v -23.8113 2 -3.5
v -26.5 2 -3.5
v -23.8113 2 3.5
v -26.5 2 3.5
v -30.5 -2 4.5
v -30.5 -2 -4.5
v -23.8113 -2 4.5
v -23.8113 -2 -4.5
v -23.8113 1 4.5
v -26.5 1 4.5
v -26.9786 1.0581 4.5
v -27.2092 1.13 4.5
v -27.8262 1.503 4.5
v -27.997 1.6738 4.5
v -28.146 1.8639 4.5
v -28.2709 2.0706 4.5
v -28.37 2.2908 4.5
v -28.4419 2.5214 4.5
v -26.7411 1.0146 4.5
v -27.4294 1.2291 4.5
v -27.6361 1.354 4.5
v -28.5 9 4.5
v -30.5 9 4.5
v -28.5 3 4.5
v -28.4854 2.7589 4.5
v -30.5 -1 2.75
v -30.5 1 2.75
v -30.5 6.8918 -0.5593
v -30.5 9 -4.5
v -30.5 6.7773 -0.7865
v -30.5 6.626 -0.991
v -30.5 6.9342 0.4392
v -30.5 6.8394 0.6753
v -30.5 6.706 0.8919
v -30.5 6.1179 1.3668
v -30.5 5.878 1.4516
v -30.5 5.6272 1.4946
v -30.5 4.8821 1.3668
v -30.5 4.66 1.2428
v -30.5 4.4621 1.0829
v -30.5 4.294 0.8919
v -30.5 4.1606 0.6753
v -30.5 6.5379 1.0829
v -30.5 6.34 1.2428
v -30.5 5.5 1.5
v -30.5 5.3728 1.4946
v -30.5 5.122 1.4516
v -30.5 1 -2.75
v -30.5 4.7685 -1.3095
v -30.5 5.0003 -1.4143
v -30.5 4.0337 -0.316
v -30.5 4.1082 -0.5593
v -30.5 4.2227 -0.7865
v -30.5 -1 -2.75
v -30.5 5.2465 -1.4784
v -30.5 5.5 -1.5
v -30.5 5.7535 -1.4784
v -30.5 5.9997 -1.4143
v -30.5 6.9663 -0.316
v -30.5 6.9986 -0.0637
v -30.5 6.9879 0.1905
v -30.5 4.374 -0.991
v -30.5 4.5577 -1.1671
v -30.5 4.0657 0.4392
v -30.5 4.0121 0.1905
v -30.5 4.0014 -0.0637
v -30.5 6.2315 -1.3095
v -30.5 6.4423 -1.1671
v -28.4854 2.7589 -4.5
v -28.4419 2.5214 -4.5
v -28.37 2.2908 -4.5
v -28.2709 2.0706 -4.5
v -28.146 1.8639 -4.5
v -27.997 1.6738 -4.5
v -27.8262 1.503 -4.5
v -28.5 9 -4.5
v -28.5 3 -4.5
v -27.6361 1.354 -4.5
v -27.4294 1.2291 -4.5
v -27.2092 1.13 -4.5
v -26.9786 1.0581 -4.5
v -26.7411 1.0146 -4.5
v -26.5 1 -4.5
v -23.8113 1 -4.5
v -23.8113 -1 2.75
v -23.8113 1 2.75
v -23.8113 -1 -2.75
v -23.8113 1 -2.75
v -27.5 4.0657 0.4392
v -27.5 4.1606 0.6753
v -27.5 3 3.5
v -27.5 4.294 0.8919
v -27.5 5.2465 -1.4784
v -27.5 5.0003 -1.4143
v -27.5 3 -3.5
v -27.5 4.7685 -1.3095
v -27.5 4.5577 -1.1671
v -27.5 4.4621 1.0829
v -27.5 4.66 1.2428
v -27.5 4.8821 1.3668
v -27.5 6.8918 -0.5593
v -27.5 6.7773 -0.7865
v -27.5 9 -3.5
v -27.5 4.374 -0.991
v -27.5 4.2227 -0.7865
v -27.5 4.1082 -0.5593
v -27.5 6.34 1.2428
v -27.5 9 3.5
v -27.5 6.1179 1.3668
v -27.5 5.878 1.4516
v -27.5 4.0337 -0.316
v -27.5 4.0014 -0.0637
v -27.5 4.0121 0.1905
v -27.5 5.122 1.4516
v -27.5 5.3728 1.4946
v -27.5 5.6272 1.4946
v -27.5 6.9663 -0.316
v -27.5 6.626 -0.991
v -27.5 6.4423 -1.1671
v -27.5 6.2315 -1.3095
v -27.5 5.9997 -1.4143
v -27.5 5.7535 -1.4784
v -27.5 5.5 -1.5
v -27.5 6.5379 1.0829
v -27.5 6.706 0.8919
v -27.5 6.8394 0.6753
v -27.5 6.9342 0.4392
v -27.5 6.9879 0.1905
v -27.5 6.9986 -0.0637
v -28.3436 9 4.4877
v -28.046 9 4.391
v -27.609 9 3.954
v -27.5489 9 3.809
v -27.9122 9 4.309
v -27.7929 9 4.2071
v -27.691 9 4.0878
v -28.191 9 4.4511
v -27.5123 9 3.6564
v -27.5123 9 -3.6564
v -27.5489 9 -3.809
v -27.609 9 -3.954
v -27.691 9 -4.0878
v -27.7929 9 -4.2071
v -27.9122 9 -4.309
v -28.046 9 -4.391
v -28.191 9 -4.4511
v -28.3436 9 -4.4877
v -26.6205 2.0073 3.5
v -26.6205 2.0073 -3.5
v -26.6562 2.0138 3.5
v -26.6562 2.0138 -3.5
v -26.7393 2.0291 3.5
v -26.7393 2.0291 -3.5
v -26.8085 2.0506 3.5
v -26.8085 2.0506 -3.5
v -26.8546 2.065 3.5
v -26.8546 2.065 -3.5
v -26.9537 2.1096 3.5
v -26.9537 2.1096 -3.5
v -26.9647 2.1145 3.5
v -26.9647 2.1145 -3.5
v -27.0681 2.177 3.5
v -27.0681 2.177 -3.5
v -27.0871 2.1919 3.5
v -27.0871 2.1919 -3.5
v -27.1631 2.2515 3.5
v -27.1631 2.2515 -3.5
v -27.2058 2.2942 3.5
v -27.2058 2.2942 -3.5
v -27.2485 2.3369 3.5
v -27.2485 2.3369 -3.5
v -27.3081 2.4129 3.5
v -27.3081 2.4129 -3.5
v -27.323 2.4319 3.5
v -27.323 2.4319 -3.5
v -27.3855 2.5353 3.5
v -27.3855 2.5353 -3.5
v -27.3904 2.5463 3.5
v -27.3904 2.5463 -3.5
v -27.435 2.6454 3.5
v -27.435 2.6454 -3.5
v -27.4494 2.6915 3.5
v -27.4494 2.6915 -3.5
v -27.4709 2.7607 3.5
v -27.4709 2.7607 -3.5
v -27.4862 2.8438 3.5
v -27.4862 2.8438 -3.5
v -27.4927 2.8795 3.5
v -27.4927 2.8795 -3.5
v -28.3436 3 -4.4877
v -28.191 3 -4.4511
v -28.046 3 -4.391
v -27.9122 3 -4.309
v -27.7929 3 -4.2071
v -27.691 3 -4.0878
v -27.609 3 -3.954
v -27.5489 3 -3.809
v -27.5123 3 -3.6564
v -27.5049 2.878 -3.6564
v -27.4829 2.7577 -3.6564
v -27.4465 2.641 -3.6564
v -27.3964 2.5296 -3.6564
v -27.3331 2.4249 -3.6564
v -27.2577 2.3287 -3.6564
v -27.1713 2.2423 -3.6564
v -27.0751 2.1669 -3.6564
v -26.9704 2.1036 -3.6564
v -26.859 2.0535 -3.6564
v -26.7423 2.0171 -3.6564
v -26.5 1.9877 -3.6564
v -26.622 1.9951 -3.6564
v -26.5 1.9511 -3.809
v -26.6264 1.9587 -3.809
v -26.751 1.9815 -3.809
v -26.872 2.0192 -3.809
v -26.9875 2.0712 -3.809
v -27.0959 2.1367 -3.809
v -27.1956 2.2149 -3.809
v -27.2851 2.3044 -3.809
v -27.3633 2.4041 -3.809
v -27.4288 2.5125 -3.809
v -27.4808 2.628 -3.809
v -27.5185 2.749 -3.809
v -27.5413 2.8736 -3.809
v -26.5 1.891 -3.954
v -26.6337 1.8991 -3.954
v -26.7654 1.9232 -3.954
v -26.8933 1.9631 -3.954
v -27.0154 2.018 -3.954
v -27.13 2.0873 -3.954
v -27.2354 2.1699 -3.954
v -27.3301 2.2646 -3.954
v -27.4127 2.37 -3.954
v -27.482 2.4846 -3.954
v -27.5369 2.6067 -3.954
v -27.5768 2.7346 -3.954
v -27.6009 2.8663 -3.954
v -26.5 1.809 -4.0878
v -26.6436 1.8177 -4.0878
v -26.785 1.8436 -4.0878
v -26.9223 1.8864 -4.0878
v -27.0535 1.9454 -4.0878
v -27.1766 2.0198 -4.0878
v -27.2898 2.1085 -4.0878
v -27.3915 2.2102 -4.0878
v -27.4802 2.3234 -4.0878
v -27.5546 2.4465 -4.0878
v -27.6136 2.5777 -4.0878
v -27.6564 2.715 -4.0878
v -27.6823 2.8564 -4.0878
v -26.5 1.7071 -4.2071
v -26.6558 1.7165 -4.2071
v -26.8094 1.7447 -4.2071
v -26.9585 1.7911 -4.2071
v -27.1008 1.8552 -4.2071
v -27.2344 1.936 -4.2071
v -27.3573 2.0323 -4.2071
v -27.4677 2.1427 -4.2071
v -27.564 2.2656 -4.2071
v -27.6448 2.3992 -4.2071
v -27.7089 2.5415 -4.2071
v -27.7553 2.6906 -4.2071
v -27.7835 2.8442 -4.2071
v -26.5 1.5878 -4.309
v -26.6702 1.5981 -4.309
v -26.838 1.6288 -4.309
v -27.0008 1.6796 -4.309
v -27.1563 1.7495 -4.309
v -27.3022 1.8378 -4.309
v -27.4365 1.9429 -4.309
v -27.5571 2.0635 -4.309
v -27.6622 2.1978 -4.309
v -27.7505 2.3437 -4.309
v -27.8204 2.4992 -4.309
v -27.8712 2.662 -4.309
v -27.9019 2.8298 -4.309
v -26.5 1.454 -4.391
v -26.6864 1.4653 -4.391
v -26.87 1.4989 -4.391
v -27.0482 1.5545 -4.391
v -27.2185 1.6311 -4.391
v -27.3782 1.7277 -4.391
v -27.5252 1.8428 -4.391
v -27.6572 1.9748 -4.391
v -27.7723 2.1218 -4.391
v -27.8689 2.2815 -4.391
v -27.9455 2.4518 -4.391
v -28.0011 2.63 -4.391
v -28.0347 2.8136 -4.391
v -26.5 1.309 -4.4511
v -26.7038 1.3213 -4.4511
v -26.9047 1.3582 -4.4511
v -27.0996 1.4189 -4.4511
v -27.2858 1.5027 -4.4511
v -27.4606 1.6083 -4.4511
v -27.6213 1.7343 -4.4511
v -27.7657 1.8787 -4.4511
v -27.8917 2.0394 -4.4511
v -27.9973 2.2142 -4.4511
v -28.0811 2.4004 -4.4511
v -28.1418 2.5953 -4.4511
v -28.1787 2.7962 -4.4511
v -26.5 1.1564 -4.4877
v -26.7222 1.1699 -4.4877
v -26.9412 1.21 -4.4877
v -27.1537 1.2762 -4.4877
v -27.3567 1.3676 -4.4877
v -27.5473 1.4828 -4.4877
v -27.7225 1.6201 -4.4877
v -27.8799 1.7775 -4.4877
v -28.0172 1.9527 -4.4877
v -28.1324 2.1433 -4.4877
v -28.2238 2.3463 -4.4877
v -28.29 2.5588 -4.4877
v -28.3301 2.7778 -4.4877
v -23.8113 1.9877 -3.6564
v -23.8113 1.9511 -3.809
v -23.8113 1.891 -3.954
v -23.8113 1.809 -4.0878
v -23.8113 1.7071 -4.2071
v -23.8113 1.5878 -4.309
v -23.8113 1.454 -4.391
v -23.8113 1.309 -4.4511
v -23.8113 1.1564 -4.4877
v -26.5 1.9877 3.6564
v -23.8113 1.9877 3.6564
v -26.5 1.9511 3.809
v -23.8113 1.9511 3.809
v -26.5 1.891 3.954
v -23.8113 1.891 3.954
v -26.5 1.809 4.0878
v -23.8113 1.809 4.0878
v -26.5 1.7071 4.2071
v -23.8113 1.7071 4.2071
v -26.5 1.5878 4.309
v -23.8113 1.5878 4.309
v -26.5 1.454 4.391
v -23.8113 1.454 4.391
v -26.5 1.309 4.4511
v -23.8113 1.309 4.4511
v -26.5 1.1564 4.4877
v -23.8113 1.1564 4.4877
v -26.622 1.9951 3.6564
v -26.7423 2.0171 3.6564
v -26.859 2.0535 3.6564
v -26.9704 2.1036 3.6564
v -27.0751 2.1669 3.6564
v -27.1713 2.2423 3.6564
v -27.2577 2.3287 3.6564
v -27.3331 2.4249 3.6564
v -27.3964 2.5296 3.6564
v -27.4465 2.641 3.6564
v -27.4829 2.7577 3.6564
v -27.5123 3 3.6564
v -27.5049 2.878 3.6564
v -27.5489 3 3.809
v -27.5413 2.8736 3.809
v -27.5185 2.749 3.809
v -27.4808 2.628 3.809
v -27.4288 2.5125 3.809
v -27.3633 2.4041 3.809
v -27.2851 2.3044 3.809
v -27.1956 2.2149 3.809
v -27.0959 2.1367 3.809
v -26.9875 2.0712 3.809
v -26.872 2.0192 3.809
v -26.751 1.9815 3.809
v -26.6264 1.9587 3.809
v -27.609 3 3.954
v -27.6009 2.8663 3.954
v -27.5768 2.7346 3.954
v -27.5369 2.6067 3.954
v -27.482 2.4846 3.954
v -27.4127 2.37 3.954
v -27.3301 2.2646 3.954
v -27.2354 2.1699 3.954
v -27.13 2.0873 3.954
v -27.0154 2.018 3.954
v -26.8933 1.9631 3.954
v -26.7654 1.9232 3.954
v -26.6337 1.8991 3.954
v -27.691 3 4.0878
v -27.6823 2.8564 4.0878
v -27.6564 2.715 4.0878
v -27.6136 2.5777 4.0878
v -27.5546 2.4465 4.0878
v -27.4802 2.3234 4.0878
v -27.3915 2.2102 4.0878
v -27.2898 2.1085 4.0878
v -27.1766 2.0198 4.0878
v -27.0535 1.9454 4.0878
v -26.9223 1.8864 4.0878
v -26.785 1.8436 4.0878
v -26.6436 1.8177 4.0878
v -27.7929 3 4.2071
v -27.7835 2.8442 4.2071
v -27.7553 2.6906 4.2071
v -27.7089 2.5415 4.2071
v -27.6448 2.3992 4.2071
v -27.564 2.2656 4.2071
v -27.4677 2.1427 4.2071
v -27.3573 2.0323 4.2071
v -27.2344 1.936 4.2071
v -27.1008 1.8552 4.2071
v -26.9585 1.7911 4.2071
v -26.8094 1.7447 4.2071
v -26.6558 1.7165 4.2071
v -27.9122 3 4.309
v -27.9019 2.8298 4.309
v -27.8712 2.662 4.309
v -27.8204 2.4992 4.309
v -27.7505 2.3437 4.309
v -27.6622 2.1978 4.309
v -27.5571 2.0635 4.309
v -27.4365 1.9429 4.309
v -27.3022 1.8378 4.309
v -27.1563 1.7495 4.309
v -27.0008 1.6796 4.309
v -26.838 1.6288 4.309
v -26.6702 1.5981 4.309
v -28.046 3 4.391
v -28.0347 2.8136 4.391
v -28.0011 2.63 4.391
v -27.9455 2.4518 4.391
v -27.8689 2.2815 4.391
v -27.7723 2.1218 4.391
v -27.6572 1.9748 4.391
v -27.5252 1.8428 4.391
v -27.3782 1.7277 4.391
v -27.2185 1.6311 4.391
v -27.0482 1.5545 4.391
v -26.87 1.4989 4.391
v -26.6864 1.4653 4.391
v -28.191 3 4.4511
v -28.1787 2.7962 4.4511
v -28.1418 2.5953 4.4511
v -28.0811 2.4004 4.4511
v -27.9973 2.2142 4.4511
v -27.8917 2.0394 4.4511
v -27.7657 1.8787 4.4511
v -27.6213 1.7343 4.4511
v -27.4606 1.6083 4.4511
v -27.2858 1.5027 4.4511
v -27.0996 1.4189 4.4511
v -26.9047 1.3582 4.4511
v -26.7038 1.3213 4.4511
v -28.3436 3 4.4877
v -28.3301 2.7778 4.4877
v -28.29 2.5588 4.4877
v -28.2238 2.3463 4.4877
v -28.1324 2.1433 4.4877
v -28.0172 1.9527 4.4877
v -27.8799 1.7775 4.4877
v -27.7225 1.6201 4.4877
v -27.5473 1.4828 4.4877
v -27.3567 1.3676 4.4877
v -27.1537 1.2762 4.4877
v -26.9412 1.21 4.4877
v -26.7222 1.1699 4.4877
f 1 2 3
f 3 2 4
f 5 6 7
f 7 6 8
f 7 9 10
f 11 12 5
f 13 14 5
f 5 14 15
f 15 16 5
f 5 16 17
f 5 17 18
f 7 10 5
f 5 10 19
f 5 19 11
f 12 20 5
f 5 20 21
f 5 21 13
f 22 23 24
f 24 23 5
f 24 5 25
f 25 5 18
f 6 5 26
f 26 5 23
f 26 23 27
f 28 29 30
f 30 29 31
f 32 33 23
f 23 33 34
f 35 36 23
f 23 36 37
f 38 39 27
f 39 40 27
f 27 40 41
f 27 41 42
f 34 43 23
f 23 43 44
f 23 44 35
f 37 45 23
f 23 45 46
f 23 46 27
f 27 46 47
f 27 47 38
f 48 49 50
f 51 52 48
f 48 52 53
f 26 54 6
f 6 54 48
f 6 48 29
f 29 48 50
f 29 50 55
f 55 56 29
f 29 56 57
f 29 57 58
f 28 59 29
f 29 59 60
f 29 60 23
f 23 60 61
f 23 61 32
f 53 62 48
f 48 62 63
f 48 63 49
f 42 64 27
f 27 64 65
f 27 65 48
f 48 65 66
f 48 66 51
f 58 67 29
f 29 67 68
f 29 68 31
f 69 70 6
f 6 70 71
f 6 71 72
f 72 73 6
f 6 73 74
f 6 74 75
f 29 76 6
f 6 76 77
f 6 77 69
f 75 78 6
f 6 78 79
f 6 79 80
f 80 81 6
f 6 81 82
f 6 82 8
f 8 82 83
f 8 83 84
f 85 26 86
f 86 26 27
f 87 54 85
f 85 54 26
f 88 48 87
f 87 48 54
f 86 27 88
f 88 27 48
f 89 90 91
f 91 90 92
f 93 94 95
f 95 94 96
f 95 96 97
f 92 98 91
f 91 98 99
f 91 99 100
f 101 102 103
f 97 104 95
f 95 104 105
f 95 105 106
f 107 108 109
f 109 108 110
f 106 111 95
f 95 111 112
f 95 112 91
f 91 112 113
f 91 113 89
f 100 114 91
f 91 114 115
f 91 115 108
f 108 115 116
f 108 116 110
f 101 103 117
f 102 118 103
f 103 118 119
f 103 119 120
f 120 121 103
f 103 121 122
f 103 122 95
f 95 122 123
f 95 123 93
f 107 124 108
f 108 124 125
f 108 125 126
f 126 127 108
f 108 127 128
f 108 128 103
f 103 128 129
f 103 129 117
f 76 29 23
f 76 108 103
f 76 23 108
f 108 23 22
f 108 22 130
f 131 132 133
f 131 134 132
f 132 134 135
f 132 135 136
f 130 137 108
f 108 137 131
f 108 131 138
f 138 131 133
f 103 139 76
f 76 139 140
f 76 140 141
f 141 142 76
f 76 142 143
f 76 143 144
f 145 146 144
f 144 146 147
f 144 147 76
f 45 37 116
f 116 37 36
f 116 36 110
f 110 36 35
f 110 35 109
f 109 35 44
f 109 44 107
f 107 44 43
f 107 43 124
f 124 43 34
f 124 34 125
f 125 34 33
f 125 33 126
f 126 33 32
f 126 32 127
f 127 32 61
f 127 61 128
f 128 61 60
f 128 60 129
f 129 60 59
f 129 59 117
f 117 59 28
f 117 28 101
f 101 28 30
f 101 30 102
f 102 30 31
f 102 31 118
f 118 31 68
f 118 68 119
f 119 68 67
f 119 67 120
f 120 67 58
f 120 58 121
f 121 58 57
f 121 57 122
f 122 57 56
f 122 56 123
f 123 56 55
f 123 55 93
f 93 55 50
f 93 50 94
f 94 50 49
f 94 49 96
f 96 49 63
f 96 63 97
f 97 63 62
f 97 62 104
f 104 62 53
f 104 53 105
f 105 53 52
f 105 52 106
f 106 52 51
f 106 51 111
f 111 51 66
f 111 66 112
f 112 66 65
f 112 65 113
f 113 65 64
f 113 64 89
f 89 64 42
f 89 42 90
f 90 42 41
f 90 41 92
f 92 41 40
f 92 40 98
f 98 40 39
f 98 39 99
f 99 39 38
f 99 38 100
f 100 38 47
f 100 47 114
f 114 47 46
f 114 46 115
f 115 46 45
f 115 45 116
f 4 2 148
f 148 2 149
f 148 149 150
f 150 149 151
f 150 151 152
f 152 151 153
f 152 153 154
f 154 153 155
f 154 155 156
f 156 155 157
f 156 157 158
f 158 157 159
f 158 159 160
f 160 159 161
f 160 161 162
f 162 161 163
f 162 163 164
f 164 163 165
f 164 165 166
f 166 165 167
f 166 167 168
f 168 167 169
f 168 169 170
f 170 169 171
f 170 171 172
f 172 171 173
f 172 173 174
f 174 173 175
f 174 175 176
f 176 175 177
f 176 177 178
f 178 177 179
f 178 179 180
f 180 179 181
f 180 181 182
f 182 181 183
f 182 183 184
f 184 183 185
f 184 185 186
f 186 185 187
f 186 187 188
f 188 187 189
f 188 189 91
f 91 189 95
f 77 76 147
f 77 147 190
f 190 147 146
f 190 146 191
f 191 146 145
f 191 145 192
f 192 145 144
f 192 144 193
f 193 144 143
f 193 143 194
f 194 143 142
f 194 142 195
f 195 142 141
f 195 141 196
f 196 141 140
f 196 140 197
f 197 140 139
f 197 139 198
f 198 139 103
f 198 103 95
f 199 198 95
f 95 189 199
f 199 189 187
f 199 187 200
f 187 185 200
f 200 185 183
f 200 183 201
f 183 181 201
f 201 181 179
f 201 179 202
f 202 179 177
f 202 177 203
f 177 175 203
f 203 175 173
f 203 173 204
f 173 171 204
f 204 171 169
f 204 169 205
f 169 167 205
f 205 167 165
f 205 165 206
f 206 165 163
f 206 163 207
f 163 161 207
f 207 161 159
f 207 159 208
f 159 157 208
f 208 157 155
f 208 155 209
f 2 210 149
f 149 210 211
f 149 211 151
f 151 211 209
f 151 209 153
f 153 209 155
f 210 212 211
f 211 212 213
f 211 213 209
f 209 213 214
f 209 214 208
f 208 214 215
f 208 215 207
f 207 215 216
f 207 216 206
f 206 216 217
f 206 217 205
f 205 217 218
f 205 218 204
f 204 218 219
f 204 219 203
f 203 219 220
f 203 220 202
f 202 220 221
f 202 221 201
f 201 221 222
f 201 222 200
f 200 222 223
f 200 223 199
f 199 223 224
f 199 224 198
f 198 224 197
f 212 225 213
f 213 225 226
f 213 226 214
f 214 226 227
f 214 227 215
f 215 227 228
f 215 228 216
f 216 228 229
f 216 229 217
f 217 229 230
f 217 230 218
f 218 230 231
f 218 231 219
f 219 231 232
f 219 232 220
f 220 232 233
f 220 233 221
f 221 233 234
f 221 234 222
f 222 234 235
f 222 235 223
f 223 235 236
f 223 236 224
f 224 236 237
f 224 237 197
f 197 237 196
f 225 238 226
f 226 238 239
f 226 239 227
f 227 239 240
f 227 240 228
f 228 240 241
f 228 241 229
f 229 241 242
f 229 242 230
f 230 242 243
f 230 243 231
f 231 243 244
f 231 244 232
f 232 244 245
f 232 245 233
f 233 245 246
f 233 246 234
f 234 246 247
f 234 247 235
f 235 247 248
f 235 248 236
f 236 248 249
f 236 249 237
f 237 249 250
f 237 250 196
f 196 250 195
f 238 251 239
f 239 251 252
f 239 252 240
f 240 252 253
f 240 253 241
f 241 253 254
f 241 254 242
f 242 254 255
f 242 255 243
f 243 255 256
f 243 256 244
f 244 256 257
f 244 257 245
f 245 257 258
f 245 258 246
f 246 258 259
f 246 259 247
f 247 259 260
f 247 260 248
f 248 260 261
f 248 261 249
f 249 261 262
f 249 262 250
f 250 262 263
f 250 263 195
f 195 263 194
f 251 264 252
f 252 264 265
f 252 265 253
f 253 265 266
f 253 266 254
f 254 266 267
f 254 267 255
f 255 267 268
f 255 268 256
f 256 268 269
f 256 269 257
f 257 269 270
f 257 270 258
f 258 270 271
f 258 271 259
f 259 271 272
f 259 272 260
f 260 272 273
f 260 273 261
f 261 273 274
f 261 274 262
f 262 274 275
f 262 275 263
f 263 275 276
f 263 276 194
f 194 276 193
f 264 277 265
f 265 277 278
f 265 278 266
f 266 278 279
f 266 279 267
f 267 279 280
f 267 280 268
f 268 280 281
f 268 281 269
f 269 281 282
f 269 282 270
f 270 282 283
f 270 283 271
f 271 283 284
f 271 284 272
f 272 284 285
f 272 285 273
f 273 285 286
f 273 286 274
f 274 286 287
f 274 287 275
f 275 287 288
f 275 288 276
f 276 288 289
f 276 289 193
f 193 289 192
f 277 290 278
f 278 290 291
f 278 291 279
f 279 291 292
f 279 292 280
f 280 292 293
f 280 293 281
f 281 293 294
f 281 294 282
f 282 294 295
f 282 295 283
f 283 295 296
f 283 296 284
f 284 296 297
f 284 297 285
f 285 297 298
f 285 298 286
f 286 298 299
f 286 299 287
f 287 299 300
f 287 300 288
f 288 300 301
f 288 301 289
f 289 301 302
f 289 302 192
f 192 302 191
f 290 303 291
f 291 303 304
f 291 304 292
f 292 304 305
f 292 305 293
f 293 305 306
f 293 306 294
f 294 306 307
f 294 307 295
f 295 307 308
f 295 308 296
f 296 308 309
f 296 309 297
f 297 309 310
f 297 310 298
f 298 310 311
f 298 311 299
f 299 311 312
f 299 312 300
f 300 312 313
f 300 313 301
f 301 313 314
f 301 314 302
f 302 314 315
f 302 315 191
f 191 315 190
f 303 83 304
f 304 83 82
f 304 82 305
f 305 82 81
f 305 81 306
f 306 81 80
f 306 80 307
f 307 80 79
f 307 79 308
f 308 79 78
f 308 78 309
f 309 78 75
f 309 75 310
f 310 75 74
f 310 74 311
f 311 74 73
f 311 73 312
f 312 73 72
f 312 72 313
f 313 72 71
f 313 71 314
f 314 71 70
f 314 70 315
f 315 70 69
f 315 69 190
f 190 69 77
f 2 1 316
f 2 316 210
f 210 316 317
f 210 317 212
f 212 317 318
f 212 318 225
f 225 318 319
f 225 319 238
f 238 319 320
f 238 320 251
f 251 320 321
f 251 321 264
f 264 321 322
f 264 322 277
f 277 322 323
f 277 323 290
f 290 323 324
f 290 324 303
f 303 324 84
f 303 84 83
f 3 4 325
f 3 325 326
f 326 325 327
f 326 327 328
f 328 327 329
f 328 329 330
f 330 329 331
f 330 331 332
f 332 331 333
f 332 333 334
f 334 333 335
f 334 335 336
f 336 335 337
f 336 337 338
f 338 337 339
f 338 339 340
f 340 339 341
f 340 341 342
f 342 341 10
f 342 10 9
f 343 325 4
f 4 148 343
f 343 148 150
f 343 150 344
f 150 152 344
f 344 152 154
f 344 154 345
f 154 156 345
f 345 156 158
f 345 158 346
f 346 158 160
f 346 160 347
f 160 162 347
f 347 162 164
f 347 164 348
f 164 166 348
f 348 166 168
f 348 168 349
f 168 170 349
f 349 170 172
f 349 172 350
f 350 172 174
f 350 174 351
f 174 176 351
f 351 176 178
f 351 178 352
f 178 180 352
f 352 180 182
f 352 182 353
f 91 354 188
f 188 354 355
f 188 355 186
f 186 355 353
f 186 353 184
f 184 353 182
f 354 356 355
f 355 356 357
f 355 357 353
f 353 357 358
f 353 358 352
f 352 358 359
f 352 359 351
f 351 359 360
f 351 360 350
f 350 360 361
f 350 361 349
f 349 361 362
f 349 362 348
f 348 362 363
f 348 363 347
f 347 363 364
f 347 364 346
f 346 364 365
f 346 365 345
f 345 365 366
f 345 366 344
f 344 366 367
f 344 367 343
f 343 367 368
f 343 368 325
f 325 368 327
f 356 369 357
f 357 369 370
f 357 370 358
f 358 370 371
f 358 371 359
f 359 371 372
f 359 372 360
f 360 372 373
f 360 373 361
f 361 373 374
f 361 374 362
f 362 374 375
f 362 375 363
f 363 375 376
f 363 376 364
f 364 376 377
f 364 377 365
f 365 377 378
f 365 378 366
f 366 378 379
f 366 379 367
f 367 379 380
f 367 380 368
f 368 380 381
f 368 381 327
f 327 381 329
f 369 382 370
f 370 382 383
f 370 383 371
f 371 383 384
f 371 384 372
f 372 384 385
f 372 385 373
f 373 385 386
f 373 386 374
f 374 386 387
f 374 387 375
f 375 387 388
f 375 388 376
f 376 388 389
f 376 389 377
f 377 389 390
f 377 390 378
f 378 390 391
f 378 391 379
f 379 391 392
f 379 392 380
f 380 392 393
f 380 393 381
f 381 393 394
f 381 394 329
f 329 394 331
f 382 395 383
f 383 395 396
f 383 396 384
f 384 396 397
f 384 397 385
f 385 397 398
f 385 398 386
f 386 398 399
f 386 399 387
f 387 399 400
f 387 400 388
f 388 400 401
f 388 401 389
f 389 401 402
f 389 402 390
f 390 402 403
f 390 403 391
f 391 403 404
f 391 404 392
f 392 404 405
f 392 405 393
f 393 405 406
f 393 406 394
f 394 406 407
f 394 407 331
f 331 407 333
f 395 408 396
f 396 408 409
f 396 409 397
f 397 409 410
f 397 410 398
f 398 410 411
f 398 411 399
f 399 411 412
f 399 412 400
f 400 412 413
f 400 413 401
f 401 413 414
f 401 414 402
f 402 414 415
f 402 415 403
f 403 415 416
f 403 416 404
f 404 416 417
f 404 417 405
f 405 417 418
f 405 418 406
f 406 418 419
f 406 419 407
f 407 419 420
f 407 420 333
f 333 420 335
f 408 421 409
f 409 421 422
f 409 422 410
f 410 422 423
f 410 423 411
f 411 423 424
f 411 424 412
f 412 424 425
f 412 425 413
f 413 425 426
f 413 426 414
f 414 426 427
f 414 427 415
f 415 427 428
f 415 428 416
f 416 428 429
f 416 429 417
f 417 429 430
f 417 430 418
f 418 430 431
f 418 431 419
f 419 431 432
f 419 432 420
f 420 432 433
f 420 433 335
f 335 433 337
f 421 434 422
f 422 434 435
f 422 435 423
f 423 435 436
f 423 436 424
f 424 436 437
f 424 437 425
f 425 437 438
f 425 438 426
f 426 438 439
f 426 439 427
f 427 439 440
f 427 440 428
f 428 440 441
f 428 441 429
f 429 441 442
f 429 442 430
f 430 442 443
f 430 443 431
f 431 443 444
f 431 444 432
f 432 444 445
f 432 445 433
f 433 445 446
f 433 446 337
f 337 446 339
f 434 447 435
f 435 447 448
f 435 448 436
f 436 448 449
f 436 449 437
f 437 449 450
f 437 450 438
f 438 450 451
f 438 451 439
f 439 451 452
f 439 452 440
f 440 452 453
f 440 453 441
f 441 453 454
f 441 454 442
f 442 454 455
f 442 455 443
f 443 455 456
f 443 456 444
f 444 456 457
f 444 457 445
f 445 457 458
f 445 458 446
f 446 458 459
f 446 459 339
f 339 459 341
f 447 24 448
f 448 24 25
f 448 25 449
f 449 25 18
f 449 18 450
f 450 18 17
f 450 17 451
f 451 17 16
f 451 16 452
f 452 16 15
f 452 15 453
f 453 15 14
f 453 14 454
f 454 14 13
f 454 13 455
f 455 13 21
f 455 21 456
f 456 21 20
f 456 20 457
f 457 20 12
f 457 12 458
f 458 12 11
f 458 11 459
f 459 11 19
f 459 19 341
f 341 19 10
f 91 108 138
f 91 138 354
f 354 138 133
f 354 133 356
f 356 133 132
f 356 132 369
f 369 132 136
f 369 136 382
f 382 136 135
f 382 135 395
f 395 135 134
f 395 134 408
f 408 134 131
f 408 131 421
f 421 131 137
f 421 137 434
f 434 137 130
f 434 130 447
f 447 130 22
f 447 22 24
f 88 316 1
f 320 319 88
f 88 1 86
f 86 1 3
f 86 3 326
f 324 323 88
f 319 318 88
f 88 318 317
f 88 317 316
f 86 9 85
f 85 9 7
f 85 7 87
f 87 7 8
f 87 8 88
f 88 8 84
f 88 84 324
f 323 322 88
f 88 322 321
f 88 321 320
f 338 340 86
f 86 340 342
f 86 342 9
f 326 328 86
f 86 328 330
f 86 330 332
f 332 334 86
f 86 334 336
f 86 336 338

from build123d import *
from build123d.topology import SkipClean

# Parameters (mm, degrees)
CUT_EXTRUDE1_DEPTH       = 10
CUT_EXTRUDE1_DEPTH_BACK  = 10
SKETCH2_R                = 1.5
BOSS_EXTRUDE1_DEPTH      = 2
BOSS_EXTRUDE1_DEPTH_BACK = 2
SKETCH4_W                = 33
SKETCH4_H                = 9
CUT_EXTRUDE2_DEPTH       = 1.5
CUT_EXTRUDE2_DEPTH_BACK  = 10
SKETCH5_R                = 1.5
CUT_EXTRUDE3_DEPTH       = 10
CUT_EXTRUDE3_DEPTH_BACK  = 10
SKETCH8_R                = 1.5
SKETCH9_W                = 8.987494889
SKETCH9_H                = 0.781338227
SKETCH9_H_2              = 1.225544695
CUT_EXTRUDE4_DEPTH       = 46
SKETCH10_W               = 5.5
SKETCH10_H               = 2
CUT_EXTRUDE5_DEPTH       = 30
SKETCH11_W               = 3
SKETCH11_H               = 9
BOSS_EXTRUDE2_DEPTH      = 7
SKETCH12_R               = 1.5
CUT_EXTRUDE6_DEPTH       = 7
FILLET1_R                = 1
FILLET2_R                = 1
FILLET3_R                = 1
FILLET4_R                = 1
SKETCH13_W               = 28.065917506
SKETCH13_H               = 13.293965236
CUT_EXTRUDE7_DEPTH       = 10


with BuildPart() as part:
    # Sketch1 → Revolve1 (revolve)
    with BuildSketch(Plane.XY):
        with BuildLine():
            Line((0, 0), (-6, 0))
            ThreePointArc((-6, 0), (-3, 3), (0, 0))
        make_face()
    revolve(axis=Axis((0, 0, 0), (-1, 0, 0)))

    # Sketch2 → Cut-Extrude1 (cut, two sides: drawn at the far end of the back side and taken through both)
    with BuildSketch(Plane(origin=(0, 0, 0), x_dir=(1, 0, 0), z_dir=(0, 1, 0)).offset(-CUT_EXTRUDE1_DEPTH_BACK)):
        with Locations((-3, 0)):
            Circle(SKETCH2_R)
    extrude(amount=CUT_EXTRUDE1_DEPTH + CUT_EXTRUDE1_DEPTH_BACK, mode=Mode.SUBTRACT)

    # Sketch4 → Boss-Extrude1 (add, two sides: drawn at the far end of the back side and taken through both)
    with SkipClean():  # the faces are left unmerged after this step: merging them gives an invalid solid
        with BuildSketch(Plane(origin=(0, 0, 0), x_dir=(1, 0, 0), z_dir=(0, 1, 0)).offset(-BOSS_EXTRUDE1_DEPTH_BACK)):
            with Locations((-14, 0)):
                Rectangle(SKETCH4_W, SKETCH4_H)
        extrude(amount=BOSS_EXTRUDE1_DEPTH + BOSS_EXTRUDE1_DEPTH_BACK)

    # Sketch5 → Cut-Extrude2 (cut, two sides: drawn at the far end of the back side and taken through both)
    with SkipClean():  # the faces are left unmerged after this step: merging them gives an invalid solid
        with BuildSketch(Plane(origin=(0, 2, 0), x_dir=(1, 0, 0), z_dir=(0, 1, 0)).offset(-CUT_EXTRUDE2_DEPTH_BACK)):
            with Locations((-3, 0)):
                Circle(SKETCH5_R)
        extrude(amount=CUT_EXTRUDE2_DEPTH + CUT_EXTRUDE2_DEPTH_BACK, mode=Mode.SUBTRACT)

    # Sketch6 → Cut-Revolve1 (revolve, cut)
    with BuildSketch(Plane(origin=(0, 0, 0), x_dir=(1, 0, 0), z_dir=(0, 1, 0))):
        with BuildLine():
            Line((-3, 3.5), (-3, -3.5))
            ThreePointArc((-3, -3.5), (-6.5, 0), (-3, 3.5))
        make_face()
    revolve(axis=Axis((-3, 0, -3.5), (0, 0, 1)), mode=Mode.SUBTRACT)

    # Sketch10 → Cut-Extrude5 (cut)
    with BuildSketch(Plane.ZY.offset(30.5)):
        Rectangle(SKETCH10_W, SKETCH10_H)
    extrude(amount=-CUT_EXTRUDE5_DEPTH, mode=Mode.SUBTRACT)

    # Sketch11 → Boss-Extrude2 (add)
    with BuildSketch(Plane(origin=(0, 2, 0), x_dir=(1, 0, 0), z_dir=(0, 1, 0))):
        with Locations((-29, 0)):
            Rectangle(SKETCH11_W, SKETCH11_H)
    extrude(amount=BOSS_EXTRUDE2_DEPTH)

    # Sketch12 → Cut-Extrude6 (cut)
    with BuildSketch(Plane(origin=(-27.5, 0, 0), x_dir=(0, 0, -1), z_dir=(1, 0, 0))):
        with Locations((0, 5.5)):
            Circle(SKETCH12_R)
    extrude(amount=-CUT_EXTRUDE6_DEPTH, mode=Mode.SUBTRACT)

    # Fillet1
    fillet1_edges = [part.edges().sort_by_distance(p)[0] for p in [
        (2.5, 0, -4.5),
    ]]
    fillet(fillet1_edges, radius=FILLET1_R)

    # Fillet2
    fillet2_edges = [part.edges().sort_by_distance(p)[0] for p in [
        (2.5, 0, 4.5),
    ]]
    fillet(fillet2_edges, radius=FILLET2_R)

    # Fillet3
    fillet3_edges = [part.edges().sort_by_distance(p)[0] for p in [
        (-27.5, 2, 0),
    ]]
    fillet(fillet3_edges, radius=FILLET3_R)

    # Fillet4
    fillet4_edges = [part.edges().sort_by_distance(p)[0] for p in [
        (-27.5, 6, 4.5),
        (-27.207106781, 2.292893219, 4.5),
        (-12.5, 2, 4.5),
        (2.207106781, 2, 4.207106781),
        (2.5, 2, 0),
        (2.207106781, 2, -4.207106781),
        (-27.5, 6, -4.5),
        (-27.207106781, 2.292893219, -4.5),
        (-12.5, 2, -4.5),
    ]]
    fillet(fillet4_edges, radius=FILLET4_R)


with BuildPart() as body_2:
    # Sketch7 → Revolve2 (revolve)
    with BuildSketch(Plane(origin=(0, 0, 0), x_dir=(1, 0, 0), z_dir=(0, 1, 0))):
        with BuildLine():
            Line((-3, 3), (-3, -3))
            ThreePointArc((-3, -3), (-6, 0), (-3, 3))
        make_face()
    revolve(axis=Axis((-3, 0, -3), (0, 0, 1)))

    # Sketch8 → Cut-Extrude3 (cut, two sides: drawn at the far end of the back side and taken through both)
    with BuildSketch(Plane(origin=(0, 0, 0), x_dir=(1, 0, 0), z_dir=(0, 1, 0)).offset(-CUT_EXTRUDE3_DEPTH_BACK)):
        with Locations((-3, 0)):
            Circle(SKETCH8_R)
    extrude(amount=CUT_EXTRUDE3_DEPTH + CUT_EXTRUDE3_DEPTH_BACK, mode=Mode.SUBTRACT)

    # Sketch9 → Cut-Extrude4 (cut)
    with BuildSketch(Plane.ZY.offset(30.5)):
        with Locations((-0.006252555, 2.390669113)):
            Rectangle(SKETCH9_W, SKETCH9_H)
        with Locations((-0.006252555, -2.612772347)):
            Rectangle(SKETCH9_W, SKETCH9_H_2)
    extrude(amount=-CUT_EXTRUDE4_DEPTH, mode=Mode.SUBTRACT)


with BuildPart() as cut_extrude7_tool:
    # Sketch13 → Cut-Extrude7 (new body)
    with BuildSketch(Plane(origin=(0, 2, 0), x_dir=(1, 0, 0), z_dir=(0, 1, 0))):
        with Locations((-9.778349348, -0.92291484)):
            Rectangle(SKETCH13_W, SKETCH13_H)
    extrude(amount=-CUT_EXTRUDE7_DEPTH)


with BuildPart() as part_1:
    add(part.part)

    # Cut-Extrude7: cut by cut_extrude7_tool
    add(cut_extrude7_tool.part, mode=Mode.SUBTRACT)


with BuildPart() as body_2_1:
    add(body_2.part)

    # Cut-Extrude7: cut by cut_extrude7_tool
    add(cut_extrude7_tool.part, mode=Mode.SUBTRACT)


solid = part_1.part
